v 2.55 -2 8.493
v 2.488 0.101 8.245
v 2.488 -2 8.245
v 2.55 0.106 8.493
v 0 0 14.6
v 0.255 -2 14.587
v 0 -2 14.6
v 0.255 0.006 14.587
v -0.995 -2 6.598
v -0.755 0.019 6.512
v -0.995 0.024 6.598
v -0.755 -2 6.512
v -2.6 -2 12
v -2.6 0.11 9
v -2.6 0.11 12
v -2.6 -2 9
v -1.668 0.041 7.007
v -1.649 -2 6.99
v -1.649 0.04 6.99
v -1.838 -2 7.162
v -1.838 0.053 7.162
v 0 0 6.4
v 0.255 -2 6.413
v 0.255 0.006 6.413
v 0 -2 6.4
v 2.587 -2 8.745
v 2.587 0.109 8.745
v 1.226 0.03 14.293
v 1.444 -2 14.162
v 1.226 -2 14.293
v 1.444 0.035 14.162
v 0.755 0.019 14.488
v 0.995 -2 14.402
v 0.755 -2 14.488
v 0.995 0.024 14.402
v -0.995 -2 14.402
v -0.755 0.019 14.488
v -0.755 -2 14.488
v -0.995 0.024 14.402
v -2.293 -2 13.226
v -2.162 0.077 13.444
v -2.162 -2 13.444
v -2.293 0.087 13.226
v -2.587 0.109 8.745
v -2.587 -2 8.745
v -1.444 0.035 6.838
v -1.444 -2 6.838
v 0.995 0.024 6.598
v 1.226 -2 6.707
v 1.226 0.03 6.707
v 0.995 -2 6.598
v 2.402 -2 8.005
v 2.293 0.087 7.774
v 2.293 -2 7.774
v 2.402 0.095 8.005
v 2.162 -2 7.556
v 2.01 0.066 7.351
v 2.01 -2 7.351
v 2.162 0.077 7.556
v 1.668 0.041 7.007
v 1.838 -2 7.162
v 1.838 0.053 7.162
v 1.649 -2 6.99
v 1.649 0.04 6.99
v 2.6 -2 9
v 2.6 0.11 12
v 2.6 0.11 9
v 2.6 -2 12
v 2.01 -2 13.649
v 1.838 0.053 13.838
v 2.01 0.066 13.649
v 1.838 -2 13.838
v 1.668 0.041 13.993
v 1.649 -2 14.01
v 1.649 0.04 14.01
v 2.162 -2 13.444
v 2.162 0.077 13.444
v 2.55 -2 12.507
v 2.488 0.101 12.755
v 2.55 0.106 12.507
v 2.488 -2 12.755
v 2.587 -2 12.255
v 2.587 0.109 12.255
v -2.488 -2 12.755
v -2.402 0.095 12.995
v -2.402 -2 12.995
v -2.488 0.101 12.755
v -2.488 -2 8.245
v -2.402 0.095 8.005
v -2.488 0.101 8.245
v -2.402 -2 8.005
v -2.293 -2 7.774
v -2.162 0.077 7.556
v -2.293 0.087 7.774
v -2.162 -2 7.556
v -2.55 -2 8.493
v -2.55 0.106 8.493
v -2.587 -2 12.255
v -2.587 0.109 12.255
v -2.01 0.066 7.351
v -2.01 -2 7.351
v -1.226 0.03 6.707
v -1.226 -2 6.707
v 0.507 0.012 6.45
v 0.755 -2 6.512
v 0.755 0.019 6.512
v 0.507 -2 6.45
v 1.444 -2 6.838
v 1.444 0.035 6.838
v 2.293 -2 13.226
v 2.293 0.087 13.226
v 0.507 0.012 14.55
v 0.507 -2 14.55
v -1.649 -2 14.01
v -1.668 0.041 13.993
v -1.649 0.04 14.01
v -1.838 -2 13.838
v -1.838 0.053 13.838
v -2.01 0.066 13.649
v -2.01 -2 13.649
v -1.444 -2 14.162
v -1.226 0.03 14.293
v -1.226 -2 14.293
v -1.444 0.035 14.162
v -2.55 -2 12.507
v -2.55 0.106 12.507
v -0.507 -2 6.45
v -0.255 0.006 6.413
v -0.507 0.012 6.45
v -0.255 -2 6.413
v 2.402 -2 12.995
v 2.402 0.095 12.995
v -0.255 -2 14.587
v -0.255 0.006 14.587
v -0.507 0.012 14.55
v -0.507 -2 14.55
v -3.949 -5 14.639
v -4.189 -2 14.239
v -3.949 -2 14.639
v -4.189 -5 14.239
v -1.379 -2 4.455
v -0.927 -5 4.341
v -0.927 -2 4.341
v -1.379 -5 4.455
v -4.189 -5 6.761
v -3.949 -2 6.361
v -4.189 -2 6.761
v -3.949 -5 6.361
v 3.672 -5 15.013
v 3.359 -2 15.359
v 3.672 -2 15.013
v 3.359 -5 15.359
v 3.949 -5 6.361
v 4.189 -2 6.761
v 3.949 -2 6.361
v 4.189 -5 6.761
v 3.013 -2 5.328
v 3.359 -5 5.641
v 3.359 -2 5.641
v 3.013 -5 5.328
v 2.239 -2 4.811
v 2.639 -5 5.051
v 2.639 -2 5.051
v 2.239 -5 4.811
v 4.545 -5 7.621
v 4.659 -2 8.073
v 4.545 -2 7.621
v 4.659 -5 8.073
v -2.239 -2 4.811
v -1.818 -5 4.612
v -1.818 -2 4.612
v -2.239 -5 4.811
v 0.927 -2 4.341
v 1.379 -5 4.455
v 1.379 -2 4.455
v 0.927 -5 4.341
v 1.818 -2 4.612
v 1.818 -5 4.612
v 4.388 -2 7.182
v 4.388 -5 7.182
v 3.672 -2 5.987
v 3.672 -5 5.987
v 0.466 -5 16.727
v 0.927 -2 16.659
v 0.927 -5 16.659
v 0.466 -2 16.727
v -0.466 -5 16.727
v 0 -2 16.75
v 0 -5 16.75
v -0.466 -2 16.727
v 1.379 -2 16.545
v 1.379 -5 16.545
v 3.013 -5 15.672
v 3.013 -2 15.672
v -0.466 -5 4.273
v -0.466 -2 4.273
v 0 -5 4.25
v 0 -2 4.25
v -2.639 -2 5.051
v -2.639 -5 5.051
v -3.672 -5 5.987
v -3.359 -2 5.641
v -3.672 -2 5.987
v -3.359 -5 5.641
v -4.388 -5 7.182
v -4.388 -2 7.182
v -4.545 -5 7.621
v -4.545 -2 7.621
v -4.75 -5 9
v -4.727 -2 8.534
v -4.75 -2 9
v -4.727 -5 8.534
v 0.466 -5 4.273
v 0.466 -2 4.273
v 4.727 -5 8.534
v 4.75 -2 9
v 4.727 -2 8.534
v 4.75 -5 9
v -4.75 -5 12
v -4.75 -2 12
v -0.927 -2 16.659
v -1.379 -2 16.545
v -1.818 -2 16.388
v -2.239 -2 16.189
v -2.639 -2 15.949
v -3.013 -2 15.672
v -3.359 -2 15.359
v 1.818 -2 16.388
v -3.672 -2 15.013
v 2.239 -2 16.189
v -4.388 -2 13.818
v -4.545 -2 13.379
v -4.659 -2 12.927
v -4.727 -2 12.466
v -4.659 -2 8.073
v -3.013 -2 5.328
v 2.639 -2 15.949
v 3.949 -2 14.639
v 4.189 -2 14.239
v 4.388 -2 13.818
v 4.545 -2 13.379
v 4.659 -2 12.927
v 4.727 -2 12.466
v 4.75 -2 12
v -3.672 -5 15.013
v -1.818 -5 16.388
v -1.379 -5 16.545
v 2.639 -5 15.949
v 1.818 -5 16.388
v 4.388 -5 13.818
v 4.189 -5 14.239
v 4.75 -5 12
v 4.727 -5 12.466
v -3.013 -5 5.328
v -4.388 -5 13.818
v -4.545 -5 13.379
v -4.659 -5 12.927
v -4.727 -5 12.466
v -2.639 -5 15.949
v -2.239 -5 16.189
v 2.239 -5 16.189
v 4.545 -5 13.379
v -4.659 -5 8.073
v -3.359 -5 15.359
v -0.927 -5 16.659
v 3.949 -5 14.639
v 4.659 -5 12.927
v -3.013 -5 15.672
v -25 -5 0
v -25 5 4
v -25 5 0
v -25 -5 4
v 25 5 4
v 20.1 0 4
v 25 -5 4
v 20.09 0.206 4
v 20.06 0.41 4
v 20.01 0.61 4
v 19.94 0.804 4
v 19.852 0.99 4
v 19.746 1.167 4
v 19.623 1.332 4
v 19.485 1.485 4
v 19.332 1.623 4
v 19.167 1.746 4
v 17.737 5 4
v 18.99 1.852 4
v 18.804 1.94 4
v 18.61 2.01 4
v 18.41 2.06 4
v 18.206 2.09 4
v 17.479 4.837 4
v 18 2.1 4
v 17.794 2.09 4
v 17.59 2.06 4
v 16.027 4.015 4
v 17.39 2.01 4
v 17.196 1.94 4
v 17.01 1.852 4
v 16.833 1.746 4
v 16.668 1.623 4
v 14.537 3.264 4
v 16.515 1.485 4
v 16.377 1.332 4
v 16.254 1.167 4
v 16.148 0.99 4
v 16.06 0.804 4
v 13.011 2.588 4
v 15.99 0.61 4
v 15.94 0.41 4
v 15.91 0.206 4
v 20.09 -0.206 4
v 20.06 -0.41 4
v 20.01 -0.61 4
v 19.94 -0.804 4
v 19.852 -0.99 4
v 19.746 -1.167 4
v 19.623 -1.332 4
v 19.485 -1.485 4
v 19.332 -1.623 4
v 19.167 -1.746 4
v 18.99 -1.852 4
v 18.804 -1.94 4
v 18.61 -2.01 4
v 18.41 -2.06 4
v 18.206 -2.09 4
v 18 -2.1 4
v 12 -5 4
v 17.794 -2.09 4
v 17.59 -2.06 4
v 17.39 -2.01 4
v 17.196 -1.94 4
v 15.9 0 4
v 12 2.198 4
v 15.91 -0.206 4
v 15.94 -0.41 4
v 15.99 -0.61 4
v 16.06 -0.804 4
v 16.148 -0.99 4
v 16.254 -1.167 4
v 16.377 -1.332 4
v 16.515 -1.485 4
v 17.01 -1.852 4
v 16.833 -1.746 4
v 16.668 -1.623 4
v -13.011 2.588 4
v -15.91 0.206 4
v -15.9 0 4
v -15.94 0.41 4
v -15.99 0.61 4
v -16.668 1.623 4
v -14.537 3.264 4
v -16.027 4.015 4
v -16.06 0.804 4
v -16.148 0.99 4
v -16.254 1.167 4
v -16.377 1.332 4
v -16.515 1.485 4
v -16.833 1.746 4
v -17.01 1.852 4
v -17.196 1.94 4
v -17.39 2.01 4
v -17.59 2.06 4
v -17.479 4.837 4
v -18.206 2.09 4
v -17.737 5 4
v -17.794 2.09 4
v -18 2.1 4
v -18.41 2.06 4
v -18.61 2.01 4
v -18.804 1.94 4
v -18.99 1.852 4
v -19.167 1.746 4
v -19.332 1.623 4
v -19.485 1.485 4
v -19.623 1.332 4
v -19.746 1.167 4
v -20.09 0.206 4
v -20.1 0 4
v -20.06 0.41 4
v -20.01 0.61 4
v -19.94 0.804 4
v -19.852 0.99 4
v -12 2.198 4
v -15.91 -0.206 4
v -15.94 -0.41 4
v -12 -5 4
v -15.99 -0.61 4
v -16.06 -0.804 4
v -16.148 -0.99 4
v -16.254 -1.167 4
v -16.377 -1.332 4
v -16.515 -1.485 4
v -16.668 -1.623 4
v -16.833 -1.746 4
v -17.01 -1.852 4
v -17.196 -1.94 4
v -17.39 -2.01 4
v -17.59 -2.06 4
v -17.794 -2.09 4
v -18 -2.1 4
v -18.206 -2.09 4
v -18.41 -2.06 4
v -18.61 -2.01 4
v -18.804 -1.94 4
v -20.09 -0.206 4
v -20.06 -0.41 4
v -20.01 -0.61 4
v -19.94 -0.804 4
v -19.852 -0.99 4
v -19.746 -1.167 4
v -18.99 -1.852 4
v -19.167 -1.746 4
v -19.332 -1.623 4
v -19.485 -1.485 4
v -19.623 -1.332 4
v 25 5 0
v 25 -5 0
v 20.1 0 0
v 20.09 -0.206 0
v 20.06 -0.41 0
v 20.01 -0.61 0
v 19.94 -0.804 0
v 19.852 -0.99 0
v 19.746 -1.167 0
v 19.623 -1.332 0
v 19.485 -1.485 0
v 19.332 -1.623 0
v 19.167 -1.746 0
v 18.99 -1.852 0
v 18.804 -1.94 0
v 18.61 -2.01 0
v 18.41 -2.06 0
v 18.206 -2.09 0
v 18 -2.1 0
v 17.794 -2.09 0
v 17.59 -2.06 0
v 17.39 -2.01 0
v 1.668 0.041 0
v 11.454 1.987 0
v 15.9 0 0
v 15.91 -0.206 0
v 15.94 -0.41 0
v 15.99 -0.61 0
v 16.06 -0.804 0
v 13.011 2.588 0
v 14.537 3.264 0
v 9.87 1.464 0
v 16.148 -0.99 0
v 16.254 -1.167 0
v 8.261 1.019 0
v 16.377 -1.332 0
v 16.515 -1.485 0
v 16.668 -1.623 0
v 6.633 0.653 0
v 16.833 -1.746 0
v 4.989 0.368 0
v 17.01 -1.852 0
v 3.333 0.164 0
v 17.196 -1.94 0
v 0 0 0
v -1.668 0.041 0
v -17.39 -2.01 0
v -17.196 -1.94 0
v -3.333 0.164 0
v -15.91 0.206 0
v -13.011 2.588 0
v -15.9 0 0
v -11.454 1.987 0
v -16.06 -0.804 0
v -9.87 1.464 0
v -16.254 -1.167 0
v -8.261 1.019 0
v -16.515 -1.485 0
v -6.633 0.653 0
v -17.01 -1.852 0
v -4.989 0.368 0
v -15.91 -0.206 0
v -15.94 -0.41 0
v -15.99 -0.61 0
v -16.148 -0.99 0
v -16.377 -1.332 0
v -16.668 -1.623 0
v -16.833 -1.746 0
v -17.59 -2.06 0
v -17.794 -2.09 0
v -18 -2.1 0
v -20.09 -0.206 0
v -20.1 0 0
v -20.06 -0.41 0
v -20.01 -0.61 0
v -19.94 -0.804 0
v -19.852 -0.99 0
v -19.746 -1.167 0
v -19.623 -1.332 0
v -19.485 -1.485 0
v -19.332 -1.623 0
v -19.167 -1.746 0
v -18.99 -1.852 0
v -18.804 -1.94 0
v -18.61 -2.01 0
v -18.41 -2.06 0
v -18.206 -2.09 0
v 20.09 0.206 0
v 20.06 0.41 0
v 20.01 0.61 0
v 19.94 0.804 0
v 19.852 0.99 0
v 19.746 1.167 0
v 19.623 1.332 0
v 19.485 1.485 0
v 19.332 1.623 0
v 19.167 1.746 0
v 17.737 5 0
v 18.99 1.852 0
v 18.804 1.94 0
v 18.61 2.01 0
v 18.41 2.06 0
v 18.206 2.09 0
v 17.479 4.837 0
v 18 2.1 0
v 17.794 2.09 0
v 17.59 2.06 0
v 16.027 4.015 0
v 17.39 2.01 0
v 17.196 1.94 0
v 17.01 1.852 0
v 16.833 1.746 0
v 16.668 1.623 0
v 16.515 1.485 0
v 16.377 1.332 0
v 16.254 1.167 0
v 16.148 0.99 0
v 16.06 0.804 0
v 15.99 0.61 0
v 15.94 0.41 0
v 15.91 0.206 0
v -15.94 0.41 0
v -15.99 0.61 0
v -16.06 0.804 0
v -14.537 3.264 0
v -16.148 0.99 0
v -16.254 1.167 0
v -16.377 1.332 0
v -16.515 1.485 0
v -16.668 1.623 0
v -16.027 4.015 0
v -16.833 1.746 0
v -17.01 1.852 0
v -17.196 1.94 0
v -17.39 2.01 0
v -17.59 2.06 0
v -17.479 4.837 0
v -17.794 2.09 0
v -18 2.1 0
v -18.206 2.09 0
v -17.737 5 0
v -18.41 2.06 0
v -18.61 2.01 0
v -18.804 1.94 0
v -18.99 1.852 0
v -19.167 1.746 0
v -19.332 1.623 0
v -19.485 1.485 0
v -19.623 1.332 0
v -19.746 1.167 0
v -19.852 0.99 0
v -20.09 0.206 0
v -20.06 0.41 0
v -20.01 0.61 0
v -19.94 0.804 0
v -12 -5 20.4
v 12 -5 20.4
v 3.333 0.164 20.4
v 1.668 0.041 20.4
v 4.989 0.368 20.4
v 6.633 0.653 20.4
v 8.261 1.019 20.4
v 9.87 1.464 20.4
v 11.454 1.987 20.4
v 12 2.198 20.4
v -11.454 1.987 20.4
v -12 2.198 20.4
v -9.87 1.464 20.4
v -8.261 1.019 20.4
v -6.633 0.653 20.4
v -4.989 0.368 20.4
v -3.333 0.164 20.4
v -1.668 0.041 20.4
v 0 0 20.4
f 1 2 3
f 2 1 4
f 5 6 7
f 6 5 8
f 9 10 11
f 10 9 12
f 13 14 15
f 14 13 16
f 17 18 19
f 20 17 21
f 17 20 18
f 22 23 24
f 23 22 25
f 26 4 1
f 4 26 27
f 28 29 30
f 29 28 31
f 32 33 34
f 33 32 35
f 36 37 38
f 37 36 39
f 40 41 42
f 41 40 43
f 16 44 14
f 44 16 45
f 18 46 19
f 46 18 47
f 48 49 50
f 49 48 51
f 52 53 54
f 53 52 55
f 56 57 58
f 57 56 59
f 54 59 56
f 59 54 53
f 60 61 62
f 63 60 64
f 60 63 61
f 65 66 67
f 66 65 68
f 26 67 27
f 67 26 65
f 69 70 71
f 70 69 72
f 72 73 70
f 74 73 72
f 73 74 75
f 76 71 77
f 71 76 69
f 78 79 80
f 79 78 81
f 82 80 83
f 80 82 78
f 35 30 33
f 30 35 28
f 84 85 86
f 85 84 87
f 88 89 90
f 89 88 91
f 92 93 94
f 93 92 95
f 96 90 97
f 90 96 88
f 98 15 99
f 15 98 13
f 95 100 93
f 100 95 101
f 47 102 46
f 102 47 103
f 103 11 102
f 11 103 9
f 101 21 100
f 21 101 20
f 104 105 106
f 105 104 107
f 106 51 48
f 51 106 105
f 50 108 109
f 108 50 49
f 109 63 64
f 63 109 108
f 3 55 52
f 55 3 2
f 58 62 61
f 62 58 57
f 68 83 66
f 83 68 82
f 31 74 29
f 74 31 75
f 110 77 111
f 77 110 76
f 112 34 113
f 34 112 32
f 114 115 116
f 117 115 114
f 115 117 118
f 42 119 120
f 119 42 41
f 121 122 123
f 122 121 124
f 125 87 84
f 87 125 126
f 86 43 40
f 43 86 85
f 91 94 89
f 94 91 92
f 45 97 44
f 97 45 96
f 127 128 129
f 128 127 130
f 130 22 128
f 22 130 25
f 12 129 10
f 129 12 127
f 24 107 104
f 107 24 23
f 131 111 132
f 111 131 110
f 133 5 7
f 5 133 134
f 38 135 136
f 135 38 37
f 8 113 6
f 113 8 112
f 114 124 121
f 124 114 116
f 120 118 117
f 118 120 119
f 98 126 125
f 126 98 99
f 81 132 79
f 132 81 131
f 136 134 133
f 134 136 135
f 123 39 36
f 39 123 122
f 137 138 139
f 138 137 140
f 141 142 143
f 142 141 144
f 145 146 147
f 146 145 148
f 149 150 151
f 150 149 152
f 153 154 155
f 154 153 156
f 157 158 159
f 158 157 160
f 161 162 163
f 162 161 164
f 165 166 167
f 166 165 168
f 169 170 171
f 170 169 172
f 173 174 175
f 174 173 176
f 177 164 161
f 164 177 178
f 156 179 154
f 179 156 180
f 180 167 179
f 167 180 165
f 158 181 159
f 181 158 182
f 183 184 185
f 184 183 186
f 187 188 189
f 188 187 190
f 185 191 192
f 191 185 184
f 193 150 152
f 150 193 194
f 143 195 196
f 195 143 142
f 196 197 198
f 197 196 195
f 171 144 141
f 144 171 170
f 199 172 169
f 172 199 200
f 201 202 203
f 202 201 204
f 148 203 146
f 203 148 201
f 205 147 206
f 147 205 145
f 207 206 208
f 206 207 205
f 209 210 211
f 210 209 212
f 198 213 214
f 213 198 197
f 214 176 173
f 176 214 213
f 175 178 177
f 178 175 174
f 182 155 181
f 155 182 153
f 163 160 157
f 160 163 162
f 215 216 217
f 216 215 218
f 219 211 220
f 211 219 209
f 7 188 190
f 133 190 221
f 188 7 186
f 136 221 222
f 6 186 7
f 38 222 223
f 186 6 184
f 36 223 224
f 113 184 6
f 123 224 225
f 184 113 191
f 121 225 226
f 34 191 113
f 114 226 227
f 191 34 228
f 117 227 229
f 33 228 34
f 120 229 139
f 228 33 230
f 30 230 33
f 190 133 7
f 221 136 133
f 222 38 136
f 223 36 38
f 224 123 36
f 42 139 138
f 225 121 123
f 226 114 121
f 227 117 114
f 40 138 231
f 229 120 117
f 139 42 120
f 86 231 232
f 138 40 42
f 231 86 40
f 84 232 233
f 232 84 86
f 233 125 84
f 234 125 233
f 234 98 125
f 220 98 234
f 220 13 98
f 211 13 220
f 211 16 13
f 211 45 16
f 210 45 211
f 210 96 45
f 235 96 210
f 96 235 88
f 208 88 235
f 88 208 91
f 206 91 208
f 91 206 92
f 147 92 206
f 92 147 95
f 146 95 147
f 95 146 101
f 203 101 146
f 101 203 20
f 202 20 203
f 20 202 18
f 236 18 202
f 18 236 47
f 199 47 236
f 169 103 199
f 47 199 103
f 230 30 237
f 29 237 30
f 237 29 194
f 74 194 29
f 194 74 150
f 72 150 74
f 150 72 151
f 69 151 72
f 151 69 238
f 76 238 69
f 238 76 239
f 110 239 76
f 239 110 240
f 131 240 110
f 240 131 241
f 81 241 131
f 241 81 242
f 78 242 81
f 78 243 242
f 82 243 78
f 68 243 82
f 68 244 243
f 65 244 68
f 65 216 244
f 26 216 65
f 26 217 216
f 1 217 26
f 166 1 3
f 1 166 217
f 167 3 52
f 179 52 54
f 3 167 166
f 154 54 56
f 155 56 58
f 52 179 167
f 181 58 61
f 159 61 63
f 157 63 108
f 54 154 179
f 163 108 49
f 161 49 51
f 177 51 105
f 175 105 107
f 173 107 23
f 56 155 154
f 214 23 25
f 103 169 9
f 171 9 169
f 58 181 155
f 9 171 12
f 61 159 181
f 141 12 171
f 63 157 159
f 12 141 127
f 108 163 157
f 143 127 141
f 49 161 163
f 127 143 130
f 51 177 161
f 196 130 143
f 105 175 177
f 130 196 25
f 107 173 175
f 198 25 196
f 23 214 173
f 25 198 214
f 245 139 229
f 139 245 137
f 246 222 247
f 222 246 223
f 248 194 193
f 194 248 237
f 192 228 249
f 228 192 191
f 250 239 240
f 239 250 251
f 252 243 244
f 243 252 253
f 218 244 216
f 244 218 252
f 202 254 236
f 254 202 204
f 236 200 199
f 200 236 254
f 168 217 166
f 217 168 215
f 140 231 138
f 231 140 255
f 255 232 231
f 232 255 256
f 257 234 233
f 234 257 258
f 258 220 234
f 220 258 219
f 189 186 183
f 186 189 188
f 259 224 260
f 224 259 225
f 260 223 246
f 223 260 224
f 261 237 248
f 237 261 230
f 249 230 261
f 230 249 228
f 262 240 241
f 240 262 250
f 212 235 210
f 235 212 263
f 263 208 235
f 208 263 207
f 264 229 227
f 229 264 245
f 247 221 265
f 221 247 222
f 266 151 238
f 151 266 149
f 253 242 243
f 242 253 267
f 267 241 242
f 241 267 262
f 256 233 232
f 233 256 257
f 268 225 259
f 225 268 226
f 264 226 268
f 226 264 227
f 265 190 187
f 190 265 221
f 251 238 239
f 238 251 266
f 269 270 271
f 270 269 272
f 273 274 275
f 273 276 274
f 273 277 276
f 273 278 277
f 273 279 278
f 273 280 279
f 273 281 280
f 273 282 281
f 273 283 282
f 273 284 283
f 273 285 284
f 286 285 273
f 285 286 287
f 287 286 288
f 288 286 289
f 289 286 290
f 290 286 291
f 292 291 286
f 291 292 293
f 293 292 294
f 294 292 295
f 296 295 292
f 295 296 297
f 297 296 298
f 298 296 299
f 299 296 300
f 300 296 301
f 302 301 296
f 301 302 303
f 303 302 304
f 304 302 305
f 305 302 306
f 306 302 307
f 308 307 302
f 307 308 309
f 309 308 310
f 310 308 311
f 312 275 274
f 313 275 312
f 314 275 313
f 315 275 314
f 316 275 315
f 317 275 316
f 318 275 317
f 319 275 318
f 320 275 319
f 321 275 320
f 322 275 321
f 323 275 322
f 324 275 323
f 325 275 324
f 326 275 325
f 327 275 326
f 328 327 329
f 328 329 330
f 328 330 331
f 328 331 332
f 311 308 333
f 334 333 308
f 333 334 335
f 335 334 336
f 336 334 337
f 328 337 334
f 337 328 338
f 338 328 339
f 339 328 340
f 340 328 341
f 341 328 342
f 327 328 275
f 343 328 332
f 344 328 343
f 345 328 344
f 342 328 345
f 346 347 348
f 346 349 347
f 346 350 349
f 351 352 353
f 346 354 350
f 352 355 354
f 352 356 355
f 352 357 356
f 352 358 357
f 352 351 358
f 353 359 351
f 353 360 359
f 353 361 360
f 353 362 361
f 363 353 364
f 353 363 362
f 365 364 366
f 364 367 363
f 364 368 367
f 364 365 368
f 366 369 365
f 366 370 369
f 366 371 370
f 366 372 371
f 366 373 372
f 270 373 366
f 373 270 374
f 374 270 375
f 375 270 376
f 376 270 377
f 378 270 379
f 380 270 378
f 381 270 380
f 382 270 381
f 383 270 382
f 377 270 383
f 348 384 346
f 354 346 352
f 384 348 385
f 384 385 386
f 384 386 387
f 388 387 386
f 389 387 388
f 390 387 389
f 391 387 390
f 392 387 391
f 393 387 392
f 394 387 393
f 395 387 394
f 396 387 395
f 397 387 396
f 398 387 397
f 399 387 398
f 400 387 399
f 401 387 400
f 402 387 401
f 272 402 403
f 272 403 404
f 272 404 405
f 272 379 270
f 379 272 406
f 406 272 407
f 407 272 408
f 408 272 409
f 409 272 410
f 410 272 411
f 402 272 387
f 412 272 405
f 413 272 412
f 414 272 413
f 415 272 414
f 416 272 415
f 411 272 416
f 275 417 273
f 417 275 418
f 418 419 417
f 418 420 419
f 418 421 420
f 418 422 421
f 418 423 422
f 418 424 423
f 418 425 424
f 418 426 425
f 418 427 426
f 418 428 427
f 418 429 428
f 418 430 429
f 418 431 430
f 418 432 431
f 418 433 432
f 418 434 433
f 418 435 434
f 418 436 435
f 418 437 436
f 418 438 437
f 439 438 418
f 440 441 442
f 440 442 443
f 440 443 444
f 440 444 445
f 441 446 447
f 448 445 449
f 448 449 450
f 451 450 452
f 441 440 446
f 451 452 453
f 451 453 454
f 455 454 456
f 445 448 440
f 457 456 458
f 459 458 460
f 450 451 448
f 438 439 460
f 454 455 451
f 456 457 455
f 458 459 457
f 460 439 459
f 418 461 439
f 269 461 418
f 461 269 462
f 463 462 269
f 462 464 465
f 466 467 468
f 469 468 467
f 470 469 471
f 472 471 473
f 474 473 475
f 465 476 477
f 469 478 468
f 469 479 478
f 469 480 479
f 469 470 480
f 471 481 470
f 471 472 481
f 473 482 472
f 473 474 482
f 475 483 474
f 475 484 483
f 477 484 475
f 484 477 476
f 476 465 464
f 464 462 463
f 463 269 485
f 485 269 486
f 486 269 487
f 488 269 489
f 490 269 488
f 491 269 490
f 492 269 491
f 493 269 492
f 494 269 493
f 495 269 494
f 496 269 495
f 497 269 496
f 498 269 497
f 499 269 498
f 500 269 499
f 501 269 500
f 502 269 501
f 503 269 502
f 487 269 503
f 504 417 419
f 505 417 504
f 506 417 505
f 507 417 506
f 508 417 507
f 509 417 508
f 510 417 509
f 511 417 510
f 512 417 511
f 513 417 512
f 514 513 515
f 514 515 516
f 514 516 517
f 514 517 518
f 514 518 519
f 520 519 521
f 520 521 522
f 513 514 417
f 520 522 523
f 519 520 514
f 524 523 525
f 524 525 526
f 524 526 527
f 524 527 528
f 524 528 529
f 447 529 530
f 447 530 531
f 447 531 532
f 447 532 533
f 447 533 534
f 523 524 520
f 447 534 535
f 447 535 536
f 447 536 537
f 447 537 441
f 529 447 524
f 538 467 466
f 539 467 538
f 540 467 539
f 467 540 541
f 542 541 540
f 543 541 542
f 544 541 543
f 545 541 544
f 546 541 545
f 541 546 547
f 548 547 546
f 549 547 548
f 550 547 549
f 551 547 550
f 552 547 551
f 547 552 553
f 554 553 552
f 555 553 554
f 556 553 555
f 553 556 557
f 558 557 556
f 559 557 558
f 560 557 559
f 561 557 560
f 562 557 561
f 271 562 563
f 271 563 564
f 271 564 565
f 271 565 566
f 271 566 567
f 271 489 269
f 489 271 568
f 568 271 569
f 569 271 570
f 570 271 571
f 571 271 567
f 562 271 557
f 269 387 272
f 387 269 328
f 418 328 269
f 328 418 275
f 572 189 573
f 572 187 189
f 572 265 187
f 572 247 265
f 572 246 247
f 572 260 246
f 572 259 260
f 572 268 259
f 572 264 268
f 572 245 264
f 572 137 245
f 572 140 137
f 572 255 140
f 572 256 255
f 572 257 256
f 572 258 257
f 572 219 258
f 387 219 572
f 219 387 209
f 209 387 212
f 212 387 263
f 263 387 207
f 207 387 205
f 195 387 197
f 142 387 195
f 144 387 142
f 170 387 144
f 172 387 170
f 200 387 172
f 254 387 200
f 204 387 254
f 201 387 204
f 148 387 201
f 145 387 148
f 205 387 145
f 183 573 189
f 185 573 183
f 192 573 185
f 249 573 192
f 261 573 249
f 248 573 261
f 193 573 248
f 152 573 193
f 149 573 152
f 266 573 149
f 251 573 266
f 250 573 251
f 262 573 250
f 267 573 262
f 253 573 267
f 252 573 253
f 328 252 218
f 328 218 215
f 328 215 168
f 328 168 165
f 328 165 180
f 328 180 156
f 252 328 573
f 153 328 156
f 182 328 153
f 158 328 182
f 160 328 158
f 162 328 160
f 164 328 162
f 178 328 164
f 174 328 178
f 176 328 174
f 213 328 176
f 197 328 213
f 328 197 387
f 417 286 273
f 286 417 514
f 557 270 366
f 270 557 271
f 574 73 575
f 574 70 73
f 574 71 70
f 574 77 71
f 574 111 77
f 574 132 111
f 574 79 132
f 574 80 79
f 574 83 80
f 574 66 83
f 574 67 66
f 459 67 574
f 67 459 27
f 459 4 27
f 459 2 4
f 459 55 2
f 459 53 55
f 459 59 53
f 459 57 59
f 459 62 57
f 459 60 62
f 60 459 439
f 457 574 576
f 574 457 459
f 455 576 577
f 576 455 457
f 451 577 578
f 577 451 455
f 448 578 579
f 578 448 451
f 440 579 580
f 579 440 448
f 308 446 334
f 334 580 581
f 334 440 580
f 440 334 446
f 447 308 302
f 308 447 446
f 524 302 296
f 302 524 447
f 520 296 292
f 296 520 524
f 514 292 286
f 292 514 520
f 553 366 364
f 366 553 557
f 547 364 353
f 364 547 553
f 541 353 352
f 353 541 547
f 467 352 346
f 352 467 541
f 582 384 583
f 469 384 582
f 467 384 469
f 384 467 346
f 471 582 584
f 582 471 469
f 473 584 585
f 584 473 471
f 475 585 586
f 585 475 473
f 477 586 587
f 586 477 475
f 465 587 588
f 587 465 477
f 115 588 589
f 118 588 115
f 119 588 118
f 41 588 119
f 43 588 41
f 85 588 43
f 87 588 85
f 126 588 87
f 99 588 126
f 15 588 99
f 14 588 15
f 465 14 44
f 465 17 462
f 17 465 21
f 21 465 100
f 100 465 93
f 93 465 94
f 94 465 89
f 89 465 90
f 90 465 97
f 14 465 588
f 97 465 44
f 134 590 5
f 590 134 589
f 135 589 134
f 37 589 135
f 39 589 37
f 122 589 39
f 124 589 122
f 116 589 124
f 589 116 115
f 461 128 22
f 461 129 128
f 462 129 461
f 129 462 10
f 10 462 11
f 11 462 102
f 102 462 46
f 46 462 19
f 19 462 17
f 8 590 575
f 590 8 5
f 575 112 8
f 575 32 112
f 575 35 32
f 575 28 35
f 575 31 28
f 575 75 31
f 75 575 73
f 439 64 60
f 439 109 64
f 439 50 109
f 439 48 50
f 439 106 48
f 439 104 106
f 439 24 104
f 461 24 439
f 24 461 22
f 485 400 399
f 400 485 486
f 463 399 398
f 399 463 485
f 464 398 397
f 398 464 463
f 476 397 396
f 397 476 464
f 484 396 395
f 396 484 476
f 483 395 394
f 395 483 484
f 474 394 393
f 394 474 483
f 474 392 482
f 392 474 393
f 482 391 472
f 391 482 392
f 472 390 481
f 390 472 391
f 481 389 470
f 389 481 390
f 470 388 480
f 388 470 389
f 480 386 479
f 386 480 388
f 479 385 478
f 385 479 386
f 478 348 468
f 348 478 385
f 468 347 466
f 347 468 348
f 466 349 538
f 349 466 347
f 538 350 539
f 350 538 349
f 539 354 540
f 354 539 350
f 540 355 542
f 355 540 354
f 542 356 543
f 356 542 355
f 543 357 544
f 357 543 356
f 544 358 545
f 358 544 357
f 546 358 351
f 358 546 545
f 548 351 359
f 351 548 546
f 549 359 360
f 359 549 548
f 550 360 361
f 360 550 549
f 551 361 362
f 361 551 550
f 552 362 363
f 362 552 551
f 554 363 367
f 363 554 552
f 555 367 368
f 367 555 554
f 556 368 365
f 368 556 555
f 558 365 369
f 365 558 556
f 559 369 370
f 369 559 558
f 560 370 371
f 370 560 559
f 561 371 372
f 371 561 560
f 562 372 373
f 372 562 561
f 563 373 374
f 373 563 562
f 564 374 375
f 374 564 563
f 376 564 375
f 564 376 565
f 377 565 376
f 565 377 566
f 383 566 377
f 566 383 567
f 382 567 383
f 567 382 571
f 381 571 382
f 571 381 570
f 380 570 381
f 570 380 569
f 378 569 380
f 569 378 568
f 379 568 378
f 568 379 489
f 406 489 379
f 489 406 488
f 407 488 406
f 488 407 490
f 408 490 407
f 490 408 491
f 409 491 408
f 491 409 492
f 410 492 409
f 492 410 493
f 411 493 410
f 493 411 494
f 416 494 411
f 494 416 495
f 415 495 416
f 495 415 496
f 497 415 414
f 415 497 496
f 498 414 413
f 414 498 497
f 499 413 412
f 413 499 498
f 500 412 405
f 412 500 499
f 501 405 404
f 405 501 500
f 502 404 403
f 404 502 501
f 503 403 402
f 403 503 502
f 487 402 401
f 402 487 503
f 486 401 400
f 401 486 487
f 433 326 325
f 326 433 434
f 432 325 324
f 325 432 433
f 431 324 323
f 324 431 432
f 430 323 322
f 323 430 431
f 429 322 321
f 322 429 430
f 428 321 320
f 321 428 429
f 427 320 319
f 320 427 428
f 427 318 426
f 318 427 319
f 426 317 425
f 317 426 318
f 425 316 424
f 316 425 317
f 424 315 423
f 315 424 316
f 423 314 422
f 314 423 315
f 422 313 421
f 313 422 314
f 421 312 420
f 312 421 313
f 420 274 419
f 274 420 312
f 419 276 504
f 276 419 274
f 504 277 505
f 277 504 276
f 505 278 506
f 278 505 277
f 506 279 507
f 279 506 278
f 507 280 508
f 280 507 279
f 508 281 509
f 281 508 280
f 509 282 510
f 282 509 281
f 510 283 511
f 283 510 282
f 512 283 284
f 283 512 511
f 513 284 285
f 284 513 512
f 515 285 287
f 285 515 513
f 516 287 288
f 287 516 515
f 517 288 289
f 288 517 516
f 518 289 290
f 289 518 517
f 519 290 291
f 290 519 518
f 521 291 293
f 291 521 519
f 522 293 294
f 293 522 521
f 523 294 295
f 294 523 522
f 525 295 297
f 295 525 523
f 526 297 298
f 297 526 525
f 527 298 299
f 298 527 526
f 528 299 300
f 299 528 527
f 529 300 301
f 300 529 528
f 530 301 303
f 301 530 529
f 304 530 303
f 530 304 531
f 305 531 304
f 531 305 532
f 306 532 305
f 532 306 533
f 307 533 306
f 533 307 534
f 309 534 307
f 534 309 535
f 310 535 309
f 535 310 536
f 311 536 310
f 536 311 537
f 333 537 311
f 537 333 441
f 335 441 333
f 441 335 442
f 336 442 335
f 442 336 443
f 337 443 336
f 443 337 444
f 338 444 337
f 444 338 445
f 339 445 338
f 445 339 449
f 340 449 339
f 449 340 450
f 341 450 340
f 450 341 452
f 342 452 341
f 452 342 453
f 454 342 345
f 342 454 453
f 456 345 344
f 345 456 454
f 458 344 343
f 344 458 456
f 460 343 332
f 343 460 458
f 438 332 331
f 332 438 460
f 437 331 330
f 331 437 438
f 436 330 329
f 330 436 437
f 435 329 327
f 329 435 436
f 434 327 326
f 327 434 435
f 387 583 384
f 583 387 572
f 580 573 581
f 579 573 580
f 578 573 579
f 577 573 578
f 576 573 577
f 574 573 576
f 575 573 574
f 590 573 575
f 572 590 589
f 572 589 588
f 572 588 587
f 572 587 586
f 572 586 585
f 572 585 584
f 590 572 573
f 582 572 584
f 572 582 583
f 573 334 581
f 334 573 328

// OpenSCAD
/**
 * Lens support for Small Rig Camera Cage & Canon/Viltrox EF to EF-M adapter
 *
 * Designed using the Small Rig Camera L-Bracket for the Canon M50 (#2387)
 * and the Viltrox Mount Adapter EF EOS M. Should also fit for similar Small 
 * Rig cages and the original Canon adapter.
 *
 */

Cage_Screw_Diameter = 4.2;
Cage_Screw_Spacing = 36;

Mount_Width = 50;
Mount_Height = 10;
Mount_Thickness = 4;

Cage_Lens_Cutout_Diameter = 68;
Cage_Lens_Cutout_Offset = 0;

Cage_Lens_Support_Spacing = 10;
Lens_Support_Screw_Hole_Dia = 5.2;
Lens_Support_Screw_Head_Dia = 9.5;
Lens_Support_Screw_Head_Height = 3;
Lens_Support_Width = 24;
Lens_Support_Height = Mount_Height;

f = 0.01;
df = 2*f;
$fn = 64;

module cage_side_mount_drawing() {
    translate([-Cage_Screw_Spacing/2, 0, 0])
        circle(d = Cage_Screw_Diameter);
    translate([Cage_Screw_Spacing/2, 0, 0])
        circle(d = Cage_Screw_Diameter);
    translate([0, Cage_Lens_Cutout_Diameter / 2 + Cage_Lens_Cutout_Offset, 0])
        circle(d = Cage_Lens_Cutout_Diameter, $fn = 128);    
}

module cage_side_mounting_plate() {
    difference() {
        translate([- Mount_Width/2, -Mount_Height/2, 0])
            cube([Mount_Width, Mount_Height, Mount_Thickness]); 
        translate([0, 0, -f])
            linear_extrude(Mount_Thickness + df)
                cage_side_mount_drawing();
    }
}

module lens_support_mount() {
    Lens_Support_Length = Cage_Lens_Support_Spacing + 2 * Lens_Support_Screw_Hole_Dia;
    difference() {
        translate([-Lens_Support_Width/2, -Lens_Support_Height/2, 0])
            cube([Lens_Support_Width, Lens_Support_Height, Lens_Support_Length]);
        translate([0, 0, -f])
            linear_extrude(Lens_Support_Length + df)
                cage_side_mount_drawing(); 
        
        screw_diameter = [Lens_Support_Screw_Hole_Dia, Lens_Support_Screw_Head_Dia];
        cutout_height = [Lens_Support_Height, Lens_Support_Screw_Head_Height + f];
        cutout_y_offset = [Lens_Support_Height/2, -(Mount_Height/2 - cutout_height[1]) - f];

        for(cutout_index = [0, 1]) {
            hull() {
                for(slot_offset = [-1, 2]) {
                    translate([0, cutout_y_offset[cutout_index], Cage_Lens_Support_Spacing + slot_offset])
                        rotate([90, 0, 0])
                            cylinder(d = screw_diameter[cutout_index], h = cutout_height[cutout_index]);
                }
            }
        }
    }
}

union() {
    cage_side_mounting_plate();
    lens_support_mount();
}
